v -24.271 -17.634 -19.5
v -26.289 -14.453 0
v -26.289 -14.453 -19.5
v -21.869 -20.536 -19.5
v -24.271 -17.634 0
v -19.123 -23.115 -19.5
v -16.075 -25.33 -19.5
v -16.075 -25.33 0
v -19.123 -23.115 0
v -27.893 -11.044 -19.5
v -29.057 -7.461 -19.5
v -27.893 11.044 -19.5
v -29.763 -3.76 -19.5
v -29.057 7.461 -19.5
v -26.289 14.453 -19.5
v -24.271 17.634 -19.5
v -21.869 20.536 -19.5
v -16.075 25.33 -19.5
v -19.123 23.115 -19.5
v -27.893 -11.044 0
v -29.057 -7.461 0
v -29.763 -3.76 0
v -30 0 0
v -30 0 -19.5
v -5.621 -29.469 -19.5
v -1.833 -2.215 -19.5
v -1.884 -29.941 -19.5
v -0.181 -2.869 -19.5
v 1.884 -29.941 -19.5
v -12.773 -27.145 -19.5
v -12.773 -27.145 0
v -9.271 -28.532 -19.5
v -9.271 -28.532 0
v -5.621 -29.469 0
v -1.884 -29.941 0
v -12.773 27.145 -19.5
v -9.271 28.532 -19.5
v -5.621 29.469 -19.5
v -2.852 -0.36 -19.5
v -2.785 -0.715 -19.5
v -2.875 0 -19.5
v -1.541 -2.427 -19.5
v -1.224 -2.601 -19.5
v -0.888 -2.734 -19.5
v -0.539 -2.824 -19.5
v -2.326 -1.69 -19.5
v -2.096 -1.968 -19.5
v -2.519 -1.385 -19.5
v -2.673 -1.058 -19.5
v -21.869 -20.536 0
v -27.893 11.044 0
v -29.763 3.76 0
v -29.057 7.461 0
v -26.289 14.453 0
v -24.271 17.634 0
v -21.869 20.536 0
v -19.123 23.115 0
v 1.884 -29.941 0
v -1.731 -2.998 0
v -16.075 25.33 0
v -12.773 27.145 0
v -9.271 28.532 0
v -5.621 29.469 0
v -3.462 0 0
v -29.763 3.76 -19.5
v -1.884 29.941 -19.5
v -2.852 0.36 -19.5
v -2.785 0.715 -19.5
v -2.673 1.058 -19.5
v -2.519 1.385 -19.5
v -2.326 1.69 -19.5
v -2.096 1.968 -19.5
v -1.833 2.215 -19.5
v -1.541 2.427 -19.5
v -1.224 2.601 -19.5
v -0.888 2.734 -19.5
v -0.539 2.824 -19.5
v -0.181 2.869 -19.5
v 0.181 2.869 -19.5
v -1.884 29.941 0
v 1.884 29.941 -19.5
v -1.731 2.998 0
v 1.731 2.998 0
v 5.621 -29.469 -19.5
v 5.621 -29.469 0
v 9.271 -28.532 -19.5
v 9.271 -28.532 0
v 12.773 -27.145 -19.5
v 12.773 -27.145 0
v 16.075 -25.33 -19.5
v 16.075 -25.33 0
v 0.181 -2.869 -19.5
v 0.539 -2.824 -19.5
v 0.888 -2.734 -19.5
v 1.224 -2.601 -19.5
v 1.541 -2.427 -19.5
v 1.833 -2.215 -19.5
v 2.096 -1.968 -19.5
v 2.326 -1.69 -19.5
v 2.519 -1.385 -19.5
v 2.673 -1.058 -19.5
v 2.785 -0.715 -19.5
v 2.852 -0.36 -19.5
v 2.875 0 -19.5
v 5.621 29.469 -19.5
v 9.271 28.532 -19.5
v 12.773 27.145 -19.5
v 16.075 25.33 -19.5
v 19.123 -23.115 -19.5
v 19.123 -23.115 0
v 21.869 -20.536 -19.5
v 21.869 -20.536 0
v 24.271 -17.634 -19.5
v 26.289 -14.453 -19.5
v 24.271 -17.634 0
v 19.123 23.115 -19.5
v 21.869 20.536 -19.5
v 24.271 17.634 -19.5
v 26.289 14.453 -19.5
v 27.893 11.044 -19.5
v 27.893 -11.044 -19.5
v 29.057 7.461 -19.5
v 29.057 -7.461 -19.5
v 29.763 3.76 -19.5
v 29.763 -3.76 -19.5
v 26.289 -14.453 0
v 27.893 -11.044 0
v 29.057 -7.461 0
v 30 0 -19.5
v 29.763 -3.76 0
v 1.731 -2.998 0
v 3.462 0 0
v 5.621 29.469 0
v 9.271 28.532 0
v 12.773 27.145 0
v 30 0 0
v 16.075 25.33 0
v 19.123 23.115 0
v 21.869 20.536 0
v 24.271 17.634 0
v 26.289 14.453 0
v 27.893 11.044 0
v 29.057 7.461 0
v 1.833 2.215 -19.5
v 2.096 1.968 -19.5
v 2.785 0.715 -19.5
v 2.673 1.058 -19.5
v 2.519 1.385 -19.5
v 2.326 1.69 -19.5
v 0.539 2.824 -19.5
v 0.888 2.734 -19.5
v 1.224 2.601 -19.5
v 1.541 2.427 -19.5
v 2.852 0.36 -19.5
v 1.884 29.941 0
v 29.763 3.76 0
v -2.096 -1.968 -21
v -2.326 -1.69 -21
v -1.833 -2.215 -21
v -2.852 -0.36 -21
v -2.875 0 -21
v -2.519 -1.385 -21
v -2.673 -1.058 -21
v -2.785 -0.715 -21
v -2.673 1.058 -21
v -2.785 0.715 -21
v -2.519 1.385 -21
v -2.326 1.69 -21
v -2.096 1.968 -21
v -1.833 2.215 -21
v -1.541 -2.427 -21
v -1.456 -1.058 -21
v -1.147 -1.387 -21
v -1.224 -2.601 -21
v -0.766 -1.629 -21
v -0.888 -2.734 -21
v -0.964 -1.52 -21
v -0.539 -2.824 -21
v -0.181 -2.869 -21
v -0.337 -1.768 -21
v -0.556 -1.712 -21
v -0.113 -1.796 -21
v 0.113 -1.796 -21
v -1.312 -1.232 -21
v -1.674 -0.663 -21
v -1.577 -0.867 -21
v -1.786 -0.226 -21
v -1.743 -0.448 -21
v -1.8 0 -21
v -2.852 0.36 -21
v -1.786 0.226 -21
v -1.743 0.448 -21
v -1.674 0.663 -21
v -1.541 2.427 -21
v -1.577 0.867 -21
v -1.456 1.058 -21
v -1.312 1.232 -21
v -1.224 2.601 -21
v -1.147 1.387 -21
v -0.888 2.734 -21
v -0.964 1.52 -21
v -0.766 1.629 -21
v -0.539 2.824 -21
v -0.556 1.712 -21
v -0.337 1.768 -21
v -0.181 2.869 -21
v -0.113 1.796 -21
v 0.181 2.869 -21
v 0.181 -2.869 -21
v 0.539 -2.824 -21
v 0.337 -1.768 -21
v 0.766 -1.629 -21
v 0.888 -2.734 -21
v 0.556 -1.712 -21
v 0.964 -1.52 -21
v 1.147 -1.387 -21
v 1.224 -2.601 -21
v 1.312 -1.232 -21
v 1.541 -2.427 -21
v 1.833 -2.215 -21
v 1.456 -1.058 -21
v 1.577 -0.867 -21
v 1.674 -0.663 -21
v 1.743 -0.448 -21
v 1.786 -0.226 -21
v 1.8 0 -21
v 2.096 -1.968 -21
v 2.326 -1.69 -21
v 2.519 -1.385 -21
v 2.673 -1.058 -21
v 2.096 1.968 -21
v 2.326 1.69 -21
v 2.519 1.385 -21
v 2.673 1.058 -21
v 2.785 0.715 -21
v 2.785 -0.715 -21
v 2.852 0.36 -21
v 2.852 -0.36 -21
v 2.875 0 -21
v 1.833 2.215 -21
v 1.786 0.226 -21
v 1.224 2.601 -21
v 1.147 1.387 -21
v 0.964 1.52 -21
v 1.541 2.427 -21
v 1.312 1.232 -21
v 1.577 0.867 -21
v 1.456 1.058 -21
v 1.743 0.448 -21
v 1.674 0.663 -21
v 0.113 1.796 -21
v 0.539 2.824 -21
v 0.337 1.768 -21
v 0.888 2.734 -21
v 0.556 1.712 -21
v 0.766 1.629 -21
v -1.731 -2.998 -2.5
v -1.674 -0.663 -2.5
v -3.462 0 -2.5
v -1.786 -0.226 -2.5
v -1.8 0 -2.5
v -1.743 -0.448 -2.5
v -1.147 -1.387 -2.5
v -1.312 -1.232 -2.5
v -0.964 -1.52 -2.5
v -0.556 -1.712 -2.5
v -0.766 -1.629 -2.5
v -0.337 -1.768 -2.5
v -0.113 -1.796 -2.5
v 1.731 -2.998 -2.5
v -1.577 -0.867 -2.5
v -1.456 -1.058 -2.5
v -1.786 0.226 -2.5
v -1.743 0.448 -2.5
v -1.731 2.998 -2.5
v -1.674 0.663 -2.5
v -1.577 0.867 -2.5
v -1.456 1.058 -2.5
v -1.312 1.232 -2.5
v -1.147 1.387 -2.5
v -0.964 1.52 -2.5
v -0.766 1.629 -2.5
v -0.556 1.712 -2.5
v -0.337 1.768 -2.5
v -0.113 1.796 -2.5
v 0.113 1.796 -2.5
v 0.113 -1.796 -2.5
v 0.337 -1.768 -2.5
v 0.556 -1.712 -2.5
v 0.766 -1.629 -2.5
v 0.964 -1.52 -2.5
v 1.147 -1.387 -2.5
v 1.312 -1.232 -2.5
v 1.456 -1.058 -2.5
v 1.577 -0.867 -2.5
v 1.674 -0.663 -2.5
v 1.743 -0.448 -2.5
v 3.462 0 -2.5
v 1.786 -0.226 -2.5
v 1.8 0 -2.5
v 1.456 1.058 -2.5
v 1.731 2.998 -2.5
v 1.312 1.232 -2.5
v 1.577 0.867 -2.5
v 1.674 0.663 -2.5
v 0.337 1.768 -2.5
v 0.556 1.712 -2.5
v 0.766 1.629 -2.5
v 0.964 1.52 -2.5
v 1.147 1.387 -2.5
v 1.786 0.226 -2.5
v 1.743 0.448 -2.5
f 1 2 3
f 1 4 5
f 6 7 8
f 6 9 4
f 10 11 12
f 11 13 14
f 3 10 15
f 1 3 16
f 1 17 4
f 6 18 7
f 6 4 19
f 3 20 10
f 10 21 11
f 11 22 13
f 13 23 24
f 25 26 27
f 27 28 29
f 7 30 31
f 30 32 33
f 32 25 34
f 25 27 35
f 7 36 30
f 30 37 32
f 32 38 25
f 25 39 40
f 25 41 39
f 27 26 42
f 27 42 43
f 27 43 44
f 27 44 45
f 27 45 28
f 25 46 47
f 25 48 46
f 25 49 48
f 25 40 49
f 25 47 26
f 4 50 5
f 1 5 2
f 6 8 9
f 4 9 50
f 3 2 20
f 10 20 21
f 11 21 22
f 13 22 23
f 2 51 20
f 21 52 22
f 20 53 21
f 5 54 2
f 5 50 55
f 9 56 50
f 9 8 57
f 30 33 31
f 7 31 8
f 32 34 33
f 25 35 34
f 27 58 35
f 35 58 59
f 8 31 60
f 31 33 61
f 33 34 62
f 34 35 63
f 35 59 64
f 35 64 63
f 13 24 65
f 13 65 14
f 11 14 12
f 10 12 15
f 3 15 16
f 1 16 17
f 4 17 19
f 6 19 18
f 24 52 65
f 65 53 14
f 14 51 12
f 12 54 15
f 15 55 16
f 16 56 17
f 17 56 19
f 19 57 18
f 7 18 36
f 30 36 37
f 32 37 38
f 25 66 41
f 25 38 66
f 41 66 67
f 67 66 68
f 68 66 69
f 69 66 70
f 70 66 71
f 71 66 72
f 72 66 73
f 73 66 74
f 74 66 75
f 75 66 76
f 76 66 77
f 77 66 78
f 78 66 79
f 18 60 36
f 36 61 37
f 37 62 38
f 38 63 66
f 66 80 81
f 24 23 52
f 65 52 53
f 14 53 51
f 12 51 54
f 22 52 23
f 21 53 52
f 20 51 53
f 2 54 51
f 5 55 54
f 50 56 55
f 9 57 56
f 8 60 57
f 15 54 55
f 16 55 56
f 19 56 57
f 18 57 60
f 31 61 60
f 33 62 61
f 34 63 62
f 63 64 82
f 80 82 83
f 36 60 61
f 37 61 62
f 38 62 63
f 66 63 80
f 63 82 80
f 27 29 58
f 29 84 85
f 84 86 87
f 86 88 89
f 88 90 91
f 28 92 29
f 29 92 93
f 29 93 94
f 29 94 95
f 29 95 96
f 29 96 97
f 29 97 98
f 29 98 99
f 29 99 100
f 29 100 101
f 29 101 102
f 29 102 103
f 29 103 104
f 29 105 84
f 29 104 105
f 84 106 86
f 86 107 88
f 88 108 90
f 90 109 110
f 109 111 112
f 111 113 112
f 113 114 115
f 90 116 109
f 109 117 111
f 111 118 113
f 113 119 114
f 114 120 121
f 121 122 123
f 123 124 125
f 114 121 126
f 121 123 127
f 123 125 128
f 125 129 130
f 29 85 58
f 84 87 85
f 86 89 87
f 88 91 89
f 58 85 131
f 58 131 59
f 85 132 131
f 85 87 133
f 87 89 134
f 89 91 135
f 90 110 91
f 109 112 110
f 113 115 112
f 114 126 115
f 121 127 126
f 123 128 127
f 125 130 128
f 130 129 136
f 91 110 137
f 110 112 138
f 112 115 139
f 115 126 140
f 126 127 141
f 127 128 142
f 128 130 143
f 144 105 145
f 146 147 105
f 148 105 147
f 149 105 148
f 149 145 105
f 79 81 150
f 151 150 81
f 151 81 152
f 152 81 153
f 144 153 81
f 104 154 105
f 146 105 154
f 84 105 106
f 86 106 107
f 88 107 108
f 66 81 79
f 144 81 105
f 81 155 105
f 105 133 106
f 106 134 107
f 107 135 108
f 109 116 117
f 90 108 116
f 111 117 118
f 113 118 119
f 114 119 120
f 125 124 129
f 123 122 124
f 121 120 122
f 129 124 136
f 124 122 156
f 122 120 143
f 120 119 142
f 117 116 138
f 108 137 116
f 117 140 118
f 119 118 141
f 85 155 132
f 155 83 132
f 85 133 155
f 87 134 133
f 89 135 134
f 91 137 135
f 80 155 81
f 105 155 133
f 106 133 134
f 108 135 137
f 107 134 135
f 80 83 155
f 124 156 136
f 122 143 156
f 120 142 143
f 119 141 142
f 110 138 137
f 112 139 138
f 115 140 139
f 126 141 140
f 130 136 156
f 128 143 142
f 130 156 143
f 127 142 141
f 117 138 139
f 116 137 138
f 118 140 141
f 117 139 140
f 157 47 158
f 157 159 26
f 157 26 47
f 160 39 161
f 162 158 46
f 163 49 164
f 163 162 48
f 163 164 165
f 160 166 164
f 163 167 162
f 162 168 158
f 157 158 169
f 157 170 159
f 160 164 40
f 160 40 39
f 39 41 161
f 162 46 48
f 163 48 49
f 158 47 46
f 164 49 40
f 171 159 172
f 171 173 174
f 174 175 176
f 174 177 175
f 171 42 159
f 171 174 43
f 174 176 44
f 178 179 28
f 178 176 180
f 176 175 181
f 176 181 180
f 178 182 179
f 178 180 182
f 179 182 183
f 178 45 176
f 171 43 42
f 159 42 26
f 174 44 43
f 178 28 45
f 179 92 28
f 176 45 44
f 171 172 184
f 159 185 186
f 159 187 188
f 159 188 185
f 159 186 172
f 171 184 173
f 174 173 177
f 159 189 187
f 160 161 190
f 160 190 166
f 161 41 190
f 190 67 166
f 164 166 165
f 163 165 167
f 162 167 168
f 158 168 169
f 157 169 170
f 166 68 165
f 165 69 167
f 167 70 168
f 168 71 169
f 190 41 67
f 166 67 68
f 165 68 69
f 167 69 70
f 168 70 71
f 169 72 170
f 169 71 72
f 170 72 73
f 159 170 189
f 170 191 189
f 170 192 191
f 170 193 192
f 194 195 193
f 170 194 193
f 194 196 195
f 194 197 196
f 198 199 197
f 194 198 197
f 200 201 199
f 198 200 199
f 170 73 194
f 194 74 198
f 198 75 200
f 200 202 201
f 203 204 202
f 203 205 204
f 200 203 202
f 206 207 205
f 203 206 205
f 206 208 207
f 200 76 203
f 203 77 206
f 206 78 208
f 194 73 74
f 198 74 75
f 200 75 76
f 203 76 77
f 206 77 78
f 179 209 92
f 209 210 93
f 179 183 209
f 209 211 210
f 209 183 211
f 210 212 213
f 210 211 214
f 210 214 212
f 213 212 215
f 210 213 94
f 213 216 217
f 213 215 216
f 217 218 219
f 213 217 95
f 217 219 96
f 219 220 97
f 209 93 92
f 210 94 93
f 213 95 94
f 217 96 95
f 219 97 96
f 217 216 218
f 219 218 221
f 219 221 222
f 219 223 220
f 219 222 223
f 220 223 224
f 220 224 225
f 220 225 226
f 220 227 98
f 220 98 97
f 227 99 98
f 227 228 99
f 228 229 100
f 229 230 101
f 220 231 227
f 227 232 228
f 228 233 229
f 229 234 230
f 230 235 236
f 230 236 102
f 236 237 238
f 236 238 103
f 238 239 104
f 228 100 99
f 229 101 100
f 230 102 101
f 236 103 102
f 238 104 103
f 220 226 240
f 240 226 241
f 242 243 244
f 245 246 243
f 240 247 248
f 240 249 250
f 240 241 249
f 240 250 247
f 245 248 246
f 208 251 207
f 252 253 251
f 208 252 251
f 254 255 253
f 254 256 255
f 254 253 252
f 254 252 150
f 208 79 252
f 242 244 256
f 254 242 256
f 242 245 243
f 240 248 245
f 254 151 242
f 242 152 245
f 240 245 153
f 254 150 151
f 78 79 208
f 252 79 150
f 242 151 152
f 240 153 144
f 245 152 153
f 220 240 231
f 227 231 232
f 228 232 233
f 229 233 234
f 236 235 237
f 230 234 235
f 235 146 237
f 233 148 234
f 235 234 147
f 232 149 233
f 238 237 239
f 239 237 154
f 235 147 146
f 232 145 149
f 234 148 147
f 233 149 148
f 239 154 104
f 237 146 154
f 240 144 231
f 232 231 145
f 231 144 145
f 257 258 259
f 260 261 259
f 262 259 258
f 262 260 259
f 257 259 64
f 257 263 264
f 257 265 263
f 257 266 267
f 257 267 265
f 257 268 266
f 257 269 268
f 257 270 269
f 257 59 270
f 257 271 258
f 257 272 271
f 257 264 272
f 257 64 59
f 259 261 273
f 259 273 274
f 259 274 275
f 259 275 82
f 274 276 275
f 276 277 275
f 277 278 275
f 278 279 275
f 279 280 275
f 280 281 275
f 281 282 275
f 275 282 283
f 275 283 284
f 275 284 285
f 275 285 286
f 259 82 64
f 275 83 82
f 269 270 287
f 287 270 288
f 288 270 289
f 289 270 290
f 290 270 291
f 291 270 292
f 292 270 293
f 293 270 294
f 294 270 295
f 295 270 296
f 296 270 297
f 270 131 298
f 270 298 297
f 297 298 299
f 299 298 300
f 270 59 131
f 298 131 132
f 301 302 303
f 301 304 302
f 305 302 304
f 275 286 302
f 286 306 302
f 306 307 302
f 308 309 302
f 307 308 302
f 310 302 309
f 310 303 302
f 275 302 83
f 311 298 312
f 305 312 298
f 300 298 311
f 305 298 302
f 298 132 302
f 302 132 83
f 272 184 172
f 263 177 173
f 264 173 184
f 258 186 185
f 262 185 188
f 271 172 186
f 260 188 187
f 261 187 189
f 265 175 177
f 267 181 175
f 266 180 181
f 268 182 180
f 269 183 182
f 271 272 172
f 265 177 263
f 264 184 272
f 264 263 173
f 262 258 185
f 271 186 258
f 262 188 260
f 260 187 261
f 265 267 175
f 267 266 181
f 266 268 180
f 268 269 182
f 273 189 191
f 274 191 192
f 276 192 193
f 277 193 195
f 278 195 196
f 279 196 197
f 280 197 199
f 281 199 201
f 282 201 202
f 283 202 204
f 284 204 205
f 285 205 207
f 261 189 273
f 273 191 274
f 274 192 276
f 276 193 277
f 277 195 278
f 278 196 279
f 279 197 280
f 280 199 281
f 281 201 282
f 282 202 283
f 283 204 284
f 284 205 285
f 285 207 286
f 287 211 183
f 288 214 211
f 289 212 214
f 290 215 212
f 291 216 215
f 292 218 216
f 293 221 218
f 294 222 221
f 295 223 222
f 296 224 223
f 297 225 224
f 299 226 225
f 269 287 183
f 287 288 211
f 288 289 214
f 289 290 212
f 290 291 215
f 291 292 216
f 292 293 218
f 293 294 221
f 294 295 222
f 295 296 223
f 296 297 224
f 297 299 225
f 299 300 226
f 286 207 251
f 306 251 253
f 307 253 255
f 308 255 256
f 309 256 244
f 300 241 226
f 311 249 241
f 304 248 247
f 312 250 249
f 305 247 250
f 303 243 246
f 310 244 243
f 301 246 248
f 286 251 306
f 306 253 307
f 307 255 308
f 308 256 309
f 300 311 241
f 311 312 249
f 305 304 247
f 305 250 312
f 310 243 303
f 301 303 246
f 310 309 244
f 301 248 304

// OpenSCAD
$fn = 50;

difference() {
	union() {
		translate(v = [0, 0, -19.5]) {
			cylinder(h = 19.5, r = 30.0);
		}
		#translate(v = [0, 0, -21.0]) {
			cylinder(h = 21, r = 2.875);
		}
	}
	union() {
		translate(v = [0, 0, 0]) {
			rotate(a = [0, 0, 0]) {
				difference() {
					union() {
						translate(v = [0, 0, -2.5]) {
							linear_extrude(height = 2.5) {
								polygon(points = [[3.4619999999999997, 0.0], [1.7310000000000003, 2.9981799479017264], [-1.7309999999999992, 2.9981799479017264], [-3.4619999999999997, 4.2397272186481365e-16], [-1.7310000000000014, -2.998179947901726], [1.7309999999999977, -2.9981799479017277]]);
							}
						}
					}
					union();
				}
			}
		}
		#translate(v = [0, 0, -100.0]) {
			cylinder(h = 200, r = 1.8);
		}
	}
}
